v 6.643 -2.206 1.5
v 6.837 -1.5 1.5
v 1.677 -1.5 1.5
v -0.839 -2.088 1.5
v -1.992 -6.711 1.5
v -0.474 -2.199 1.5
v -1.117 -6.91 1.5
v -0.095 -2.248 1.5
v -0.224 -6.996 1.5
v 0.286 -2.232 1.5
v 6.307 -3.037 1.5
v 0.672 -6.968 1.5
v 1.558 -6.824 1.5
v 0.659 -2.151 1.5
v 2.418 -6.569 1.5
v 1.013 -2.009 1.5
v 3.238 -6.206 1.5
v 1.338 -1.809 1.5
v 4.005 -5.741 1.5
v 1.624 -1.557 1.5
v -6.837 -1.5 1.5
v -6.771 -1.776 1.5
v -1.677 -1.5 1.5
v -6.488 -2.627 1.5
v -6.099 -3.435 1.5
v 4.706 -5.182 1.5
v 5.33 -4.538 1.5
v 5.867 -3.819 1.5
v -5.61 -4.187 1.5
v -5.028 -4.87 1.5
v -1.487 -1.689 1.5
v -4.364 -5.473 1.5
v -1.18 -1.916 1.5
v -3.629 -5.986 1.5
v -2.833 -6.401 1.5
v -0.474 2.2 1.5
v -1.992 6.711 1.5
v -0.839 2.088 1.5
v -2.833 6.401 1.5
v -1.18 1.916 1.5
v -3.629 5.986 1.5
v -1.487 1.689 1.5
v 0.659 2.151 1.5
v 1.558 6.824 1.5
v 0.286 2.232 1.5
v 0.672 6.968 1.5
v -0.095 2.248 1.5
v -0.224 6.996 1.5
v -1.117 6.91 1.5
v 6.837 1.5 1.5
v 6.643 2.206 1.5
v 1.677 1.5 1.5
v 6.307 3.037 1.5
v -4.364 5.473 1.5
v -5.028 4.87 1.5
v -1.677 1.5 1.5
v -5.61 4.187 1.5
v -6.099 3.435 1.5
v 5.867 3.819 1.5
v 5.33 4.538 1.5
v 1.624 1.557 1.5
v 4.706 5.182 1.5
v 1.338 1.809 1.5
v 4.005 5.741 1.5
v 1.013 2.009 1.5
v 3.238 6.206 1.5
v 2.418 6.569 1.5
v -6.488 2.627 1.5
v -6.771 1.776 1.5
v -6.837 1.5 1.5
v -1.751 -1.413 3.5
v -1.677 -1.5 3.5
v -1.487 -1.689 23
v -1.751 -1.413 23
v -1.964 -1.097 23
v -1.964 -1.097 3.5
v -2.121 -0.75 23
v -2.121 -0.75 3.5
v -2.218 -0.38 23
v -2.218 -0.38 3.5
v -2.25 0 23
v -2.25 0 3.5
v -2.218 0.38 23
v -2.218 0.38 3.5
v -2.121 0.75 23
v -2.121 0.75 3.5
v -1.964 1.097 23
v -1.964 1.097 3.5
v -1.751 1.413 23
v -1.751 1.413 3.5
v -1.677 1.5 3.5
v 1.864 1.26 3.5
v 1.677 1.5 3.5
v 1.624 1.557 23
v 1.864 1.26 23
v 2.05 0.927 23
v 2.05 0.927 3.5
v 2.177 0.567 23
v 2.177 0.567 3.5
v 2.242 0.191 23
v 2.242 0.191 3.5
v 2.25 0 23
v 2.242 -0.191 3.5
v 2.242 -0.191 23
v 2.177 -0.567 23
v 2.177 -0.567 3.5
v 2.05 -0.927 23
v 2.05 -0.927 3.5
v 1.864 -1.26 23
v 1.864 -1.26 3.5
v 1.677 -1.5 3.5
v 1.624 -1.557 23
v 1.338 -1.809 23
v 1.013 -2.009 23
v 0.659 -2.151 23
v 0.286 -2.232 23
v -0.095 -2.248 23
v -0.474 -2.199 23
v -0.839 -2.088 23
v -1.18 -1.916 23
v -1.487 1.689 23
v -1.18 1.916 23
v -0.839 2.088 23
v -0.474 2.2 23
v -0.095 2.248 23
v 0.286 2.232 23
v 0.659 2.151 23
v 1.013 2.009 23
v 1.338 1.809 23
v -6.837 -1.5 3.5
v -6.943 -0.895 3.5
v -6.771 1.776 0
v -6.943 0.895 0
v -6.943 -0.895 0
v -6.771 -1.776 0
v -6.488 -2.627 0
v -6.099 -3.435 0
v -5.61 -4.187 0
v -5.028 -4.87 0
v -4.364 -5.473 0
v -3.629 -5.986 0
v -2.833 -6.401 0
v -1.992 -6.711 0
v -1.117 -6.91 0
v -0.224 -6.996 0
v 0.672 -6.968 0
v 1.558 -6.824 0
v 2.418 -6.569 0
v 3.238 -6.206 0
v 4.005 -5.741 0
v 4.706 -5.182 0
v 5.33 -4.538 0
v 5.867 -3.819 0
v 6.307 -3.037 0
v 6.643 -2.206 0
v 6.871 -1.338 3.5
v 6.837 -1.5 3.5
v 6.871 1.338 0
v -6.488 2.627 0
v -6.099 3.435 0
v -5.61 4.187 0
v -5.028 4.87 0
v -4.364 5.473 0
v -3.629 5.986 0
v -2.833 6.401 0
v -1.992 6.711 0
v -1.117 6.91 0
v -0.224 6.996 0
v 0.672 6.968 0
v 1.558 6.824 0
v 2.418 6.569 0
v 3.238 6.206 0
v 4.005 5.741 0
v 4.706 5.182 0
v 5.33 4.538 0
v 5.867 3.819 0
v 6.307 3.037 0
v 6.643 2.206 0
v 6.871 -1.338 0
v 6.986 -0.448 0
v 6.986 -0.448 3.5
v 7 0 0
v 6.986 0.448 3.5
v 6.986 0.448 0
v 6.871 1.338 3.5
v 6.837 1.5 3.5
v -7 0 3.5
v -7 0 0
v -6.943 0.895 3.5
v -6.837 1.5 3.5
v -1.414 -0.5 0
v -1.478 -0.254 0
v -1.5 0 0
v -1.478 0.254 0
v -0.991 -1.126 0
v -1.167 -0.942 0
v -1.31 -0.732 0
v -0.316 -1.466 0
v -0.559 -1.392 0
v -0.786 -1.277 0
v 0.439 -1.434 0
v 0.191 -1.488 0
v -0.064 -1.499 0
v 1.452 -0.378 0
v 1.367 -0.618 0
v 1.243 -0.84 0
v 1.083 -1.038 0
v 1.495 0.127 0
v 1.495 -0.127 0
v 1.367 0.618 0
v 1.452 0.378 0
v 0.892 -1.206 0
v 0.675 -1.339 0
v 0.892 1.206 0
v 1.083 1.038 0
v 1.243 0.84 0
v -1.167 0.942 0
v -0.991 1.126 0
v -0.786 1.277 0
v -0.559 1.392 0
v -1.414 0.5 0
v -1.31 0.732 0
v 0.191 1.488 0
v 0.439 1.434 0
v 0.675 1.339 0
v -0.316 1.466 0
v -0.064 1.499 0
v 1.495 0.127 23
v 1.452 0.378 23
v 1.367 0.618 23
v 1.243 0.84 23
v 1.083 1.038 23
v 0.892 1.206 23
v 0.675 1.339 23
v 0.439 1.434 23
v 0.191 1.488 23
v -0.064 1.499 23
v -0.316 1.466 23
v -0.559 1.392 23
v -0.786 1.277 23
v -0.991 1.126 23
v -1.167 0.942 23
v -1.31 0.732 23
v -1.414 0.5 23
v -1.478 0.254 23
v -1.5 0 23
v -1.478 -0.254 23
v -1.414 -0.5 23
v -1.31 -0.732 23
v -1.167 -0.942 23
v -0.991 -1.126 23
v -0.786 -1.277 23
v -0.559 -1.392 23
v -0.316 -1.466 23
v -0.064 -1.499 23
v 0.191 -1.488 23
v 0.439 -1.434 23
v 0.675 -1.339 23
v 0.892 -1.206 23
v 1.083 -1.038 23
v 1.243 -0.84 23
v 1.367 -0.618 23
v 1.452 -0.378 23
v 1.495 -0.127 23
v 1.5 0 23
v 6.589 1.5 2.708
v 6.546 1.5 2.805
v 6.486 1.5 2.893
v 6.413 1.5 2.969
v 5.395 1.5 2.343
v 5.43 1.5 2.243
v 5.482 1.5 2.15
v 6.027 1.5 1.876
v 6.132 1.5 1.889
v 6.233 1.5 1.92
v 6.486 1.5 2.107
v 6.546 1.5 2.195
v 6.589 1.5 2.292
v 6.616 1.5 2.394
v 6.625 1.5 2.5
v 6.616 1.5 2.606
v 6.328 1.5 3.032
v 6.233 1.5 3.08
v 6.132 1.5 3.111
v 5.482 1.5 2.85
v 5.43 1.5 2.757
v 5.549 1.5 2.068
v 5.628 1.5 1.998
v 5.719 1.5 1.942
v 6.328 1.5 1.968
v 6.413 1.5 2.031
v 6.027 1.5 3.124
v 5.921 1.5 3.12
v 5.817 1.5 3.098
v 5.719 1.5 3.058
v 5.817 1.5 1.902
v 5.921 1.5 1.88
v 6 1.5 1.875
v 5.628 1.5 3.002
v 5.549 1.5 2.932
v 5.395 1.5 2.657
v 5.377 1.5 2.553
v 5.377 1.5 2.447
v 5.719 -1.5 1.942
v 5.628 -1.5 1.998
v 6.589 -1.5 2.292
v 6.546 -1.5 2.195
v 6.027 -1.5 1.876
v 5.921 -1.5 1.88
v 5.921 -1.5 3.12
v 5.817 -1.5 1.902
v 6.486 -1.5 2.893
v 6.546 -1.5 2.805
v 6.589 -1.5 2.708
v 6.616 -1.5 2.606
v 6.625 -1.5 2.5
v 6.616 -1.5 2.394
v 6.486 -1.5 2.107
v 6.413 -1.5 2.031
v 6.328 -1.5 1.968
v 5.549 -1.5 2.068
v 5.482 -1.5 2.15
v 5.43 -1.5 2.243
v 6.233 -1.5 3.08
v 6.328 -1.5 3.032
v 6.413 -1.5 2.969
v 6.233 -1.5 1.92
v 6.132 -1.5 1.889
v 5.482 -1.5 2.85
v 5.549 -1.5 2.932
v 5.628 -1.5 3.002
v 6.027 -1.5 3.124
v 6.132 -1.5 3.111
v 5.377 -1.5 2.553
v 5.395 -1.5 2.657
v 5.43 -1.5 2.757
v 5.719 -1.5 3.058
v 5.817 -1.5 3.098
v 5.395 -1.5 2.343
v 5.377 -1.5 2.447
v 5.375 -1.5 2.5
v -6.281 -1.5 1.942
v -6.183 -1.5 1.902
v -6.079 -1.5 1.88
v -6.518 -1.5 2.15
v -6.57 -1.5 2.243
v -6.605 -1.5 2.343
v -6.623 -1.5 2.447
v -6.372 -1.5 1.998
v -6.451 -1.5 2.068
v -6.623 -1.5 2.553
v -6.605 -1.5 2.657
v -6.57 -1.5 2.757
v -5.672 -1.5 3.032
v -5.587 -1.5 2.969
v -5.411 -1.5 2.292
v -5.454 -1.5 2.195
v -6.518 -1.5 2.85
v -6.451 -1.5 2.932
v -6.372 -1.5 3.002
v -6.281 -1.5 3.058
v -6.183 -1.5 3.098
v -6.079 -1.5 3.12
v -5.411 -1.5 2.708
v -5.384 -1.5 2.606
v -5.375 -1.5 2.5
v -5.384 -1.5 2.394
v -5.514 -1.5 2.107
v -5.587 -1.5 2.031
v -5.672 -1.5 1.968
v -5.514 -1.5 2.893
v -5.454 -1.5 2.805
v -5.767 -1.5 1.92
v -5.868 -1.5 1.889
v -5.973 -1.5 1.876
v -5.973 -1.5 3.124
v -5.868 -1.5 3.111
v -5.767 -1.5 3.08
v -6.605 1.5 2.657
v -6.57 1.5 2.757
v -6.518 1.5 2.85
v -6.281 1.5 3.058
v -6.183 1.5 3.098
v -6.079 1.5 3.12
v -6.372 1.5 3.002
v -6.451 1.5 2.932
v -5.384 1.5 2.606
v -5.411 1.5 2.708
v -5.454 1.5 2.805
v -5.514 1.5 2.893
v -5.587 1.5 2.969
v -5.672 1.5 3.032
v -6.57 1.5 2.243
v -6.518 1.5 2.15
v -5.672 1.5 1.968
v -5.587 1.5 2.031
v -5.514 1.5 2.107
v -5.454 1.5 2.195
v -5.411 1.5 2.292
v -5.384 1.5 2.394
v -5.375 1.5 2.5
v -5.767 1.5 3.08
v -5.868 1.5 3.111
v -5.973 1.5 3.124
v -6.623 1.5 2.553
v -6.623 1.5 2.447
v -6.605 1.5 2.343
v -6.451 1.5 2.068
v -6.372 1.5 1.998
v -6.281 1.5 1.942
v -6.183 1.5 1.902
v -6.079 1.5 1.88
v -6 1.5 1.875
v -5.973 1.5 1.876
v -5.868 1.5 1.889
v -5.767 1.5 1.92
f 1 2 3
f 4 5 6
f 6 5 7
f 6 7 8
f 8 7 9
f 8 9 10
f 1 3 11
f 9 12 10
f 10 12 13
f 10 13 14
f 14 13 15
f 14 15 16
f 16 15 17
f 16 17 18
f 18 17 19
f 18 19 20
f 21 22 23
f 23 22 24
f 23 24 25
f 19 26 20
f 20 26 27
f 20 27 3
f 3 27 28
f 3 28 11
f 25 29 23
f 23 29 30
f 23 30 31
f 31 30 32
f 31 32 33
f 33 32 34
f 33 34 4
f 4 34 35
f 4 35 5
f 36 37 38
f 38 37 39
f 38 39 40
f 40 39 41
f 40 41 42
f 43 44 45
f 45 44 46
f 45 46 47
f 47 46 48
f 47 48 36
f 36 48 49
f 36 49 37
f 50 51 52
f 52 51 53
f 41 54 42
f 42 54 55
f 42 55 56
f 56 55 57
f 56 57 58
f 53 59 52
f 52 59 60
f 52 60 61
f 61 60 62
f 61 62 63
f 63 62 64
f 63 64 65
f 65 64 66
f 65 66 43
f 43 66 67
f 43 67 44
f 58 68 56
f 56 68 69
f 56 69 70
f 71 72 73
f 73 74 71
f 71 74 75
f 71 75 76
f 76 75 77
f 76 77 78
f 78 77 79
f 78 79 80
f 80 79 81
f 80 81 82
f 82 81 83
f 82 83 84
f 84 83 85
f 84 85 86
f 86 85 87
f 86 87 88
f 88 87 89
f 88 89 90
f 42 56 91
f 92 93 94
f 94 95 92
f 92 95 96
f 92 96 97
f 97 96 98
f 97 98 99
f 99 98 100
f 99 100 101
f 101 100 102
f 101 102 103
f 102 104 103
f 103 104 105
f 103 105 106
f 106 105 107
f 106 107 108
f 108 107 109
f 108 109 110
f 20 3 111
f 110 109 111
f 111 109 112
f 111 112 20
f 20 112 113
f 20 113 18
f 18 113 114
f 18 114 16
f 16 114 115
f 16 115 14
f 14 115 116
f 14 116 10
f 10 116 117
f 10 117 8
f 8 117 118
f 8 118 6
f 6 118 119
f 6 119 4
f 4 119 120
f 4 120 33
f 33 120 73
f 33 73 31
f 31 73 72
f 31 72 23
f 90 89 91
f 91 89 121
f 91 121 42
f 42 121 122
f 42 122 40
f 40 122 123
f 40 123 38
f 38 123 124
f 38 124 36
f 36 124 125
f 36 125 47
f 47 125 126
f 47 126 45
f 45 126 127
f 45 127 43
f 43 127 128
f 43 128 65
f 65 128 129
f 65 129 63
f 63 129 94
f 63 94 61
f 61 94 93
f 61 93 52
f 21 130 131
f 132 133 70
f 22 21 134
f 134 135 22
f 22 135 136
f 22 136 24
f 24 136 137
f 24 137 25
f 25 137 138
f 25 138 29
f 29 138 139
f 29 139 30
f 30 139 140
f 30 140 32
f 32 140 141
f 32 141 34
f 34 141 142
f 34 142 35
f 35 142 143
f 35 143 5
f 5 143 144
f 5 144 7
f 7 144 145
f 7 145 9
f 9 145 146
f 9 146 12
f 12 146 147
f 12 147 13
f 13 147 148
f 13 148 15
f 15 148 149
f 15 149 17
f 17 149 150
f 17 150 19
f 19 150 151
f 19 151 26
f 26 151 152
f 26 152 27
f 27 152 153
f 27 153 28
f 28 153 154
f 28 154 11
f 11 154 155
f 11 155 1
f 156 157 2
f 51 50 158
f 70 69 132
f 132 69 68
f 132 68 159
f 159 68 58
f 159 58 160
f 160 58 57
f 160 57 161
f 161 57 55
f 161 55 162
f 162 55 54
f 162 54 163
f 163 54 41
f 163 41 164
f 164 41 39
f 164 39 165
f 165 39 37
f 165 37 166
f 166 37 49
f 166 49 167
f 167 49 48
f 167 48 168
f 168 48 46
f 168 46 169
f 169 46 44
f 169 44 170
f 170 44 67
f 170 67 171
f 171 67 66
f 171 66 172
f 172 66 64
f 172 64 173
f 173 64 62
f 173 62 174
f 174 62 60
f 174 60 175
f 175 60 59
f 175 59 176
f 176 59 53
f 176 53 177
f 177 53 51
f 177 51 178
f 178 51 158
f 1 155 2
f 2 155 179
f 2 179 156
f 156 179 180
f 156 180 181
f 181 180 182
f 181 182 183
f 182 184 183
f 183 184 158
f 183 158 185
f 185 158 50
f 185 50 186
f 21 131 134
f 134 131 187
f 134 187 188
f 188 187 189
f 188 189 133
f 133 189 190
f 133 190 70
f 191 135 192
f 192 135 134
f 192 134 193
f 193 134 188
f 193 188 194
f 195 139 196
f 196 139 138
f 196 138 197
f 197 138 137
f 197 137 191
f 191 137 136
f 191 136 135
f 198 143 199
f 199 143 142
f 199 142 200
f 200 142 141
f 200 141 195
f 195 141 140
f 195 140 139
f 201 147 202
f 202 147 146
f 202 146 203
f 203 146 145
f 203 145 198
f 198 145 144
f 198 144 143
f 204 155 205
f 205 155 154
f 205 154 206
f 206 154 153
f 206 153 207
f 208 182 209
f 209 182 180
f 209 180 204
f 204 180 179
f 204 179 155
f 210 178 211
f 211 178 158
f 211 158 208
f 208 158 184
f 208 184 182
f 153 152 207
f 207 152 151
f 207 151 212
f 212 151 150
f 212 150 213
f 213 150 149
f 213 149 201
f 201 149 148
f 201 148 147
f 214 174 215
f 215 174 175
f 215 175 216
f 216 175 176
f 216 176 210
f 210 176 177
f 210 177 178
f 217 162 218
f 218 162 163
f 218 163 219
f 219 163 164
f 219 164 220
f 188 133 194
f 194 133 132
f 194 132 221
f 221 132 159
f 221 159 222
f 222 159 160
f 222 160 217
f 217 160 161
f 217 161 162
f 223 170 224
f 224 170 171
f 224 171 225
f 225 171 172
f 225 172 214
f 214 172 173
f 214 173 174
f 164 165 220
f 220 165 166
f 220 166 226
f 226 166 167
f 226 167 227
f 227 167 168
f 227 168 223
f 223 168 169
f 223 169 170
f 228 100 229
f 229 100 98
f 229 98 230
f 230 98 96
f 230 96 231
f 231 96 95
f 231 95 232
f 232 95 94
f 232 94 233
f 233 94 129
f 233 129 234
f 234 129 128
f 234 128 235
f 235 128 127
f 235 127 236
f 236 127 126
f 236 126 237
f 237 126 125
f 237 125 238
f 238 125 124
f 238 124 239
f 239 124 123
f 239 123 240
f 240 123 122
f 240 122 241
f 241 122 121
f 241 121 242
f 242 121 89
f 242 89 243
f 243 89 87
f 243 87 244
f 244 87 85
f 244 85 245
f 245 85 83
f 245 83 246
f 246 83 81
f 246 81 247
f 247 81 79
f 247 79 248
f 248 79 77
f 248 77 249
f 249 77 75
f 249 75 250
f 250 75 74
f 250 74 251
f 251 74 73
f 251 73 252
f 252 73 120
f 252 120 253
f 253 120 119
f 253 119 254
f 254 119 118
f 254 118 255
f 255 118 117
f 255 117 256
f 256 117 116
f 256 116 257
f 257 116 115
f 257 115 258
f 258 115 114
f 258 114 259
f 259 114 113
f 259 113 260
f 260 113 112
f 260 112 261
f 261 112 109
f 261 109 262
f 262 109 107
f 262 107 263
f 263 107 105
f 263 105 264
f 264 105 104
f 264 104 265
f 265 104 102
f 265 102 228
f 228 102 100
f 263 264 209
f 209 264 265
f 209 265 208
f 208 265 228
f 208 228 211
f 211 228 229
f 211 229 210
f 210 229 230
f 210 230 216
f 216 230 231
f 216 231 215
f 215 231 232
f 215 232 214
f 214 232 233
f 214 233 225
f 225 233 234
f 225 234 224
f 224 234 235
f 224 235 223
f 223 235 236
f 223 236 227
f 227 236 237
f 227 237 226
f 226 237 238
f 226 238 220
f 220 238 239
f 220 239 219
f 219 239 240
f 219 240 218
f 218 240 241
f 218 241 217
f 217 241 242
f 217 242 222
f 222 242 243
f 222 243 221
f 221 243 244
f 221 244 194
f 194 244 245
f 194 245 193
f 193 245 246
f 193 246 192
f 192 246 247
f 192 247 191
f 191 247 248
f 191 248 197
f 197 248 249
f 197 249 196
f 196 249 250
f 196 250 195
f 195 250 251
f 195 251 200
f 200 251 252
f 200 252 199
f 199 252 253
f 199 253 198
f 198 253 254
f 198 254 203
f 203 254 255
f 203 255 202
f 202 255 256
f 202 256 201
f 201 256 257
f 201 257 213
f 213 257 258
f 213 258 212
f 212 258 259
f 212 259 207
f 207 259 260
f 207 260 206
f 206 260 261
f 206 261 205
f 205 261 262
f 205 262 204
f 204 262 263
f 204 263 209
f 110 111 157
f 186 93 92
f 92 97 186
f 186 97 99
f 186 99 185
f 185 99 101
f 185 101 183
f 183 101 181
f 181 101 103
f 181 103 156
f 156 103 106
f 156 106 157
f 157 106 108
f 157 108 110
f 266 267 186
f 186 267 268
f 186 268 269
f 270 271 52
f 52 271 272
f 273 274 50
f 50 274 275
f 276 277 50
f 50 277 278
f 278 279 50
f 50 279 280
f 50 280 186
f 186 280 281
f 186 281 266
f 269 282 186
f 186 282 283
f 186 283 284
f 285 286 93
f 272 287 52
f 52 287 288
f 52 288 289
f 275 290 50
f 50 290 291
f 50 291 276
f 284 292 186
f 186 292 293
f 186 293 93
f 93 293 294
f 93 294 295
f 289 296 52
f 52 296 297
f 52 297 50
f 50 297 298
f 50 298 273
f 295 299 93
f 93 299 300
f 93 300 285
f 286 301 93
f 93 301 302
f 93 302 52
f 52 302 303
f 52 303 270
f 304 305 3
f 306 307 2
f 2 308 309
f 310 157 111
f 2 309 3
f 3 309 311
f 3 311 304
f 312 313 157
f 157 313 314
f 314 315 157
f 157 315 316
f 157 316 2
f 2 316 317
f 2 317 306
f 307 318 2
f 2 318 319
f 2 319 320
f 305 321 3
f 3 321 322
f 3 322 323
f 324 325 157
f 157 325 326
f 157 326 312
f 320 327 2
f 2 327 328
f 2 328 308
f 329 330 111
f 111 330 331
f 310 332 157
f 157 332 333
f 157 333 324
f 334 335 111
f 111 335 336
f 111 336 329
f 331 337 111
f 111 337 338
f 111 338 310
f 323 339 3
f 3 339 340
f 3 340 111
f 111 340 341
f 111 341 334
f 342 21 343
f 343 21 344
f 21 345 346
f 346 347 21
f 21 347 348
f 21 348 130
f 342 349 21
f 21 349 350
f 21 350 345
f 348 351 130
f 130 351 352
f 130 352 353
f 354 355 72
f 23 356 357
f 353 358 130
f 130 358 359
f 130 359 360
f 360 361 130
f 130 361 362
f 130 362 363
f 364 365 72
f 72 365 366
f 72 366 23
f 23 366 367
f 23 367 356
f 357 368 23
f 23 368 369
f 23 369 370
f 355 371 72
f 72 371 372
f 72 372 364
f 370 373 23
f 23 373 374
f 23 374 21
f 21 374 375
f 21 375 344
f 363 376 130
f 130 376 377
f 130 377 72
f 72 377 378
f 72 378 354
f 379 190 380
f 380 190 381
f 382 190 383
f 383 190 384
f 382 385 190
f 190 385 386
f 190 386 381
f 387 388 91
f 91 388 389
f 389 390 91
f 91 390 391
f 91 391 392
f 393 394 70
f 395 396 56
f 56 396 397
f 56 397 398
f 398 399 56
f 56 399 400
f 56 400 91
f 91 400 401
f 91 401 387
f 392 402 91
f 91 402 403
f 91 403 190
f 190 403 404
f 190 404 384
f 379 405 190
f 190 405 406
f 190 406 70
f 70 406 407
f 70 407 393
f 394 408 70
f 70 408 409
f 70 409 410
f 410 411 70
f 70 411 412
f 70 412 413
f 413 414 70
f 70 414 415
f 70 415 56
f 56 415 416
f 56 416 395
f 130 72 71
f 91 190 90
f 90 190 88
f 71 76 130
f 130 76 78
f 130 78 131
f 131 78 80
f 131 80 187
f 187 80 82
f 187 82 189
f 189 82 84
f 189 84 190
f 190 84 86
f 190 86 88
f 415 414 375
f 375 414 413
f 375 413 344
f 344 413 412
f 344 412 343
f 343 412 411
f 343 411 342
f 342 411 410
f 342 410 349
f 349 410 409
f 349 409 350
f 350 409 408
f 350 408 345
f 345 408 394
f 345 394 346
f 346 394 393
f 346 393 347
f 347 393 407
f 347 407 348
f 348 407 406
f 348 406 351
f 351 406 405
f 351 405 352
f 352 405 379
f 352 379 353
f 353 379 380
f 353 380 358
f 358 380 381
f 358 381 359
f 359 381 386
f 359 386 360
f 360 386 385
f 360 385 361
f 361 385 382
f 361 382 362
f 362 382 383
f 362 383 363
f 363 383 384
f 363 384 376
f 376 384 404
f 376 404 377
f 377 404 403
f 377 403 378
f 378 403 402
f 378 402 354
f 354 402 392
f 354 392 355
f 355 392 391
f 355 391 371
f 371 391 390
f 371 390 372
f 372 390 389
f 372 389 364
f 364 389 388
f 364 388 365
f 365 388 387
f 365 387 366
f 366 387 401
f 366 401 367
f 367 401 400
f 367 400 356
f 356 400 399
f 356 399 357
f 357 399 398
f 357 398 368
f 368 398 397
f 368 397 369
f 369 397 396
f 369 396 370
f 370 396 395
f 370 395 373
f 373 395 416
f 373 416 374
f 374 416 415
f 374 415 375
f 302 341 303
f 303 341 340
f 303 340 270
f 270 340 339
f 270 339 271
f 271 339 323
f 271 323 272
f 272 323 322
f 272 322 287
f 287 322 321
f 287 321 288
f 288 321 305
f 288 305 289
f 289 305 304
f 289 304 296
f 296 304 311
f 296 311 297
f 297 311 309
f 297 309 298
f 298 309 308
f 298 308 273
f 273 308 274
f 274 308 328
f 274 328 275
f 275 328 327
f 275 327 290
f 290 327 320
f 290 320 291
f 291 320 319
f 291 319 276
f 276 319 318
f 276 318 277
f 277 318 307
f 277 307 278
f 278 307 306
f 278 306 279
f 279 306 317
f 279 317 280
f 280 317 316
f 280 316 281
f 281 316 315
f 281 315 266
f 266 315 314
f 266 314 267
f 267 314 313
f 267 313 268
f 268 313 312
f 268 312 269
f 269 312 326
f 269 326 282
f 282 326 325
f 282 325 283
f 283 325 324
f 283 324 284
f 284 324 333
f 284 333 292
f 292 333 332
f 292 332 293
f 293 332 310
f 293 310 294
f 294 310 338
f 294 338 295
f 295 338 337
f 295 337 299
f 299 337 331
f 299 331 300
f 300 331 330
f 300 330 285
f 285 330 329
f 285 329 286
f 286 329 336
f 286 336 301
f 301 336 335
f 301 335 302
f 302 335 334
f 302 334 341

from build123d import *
from build123d.topology import SkipClean

# Parameters (mm, degrees)
SKETCH1_R           = 7
BOSS_EXTRUDE1_DEPTH = 1.5
SKETCH2_R           = 2.25
BOSS_EXTRUDE2_DEPTH = 21.5
CUT_EXTRUDE1_REACH  = 27.04
SKETCH4_R           = 1.5
BOSS_EXTRUDE5_DEPTH = 2
CUT_EXTRUDE5_REACH  = 27.5
SKETCH16_R          = 0.625
CUT_EXTRUDE6_REACH  = 25.67
SKETCH17_R          = 1.5


with BuildPart() as part:
    # Sketch1 → Boss-Extrude1 (new body)
    with BuildSketch(Plane.XY):
        Circle(SKETCH1_R)
    extrude(amount=BOSS_EXTRUDE1_DEPTH)

    # Sketch2 → Boss-Extrude2 (add)
    with BuildSketch(Plane.XY.offset(1.5)):
        Circle(SKETCH2_R)
    extrude(amount=BOSS_EXTRUDE2_DEPTH)

    # Sketch4 → Cut-Extrude1 (cut, up to next)
    with BuildSketch(Plane(origin=(0, 0, 0), x_dir=(-1, 0, 0), z_dir=(0, 0, -1)), mode=Mode.PRIVATE) as cut_extrude1_sk1:
        Circle(SKETCH4_R)
    cut_extrude1_tool1 = extrude(cut_extrude1_sk1.sketch, amount=-CUT_EXTRUDE1_REACH, mode=Mode.PRIVATE) & part.part
    add(cut_extrude1_tool1.solids().sort_by_distance((0, 0, 0))[0], mode=Mode.SUBTRACT)

    # Sketch15 → Boss-Extrude5 (add)
    with SkipClean():  # the faces are left unmerged after this step: merging them gives an invalid solid
        with BuildSketch(Plane.XY.offset(1.5)):
            with BuildLine():
                Line((6.837397, -1.5), (-6.837397, -1.5))
                ThreePointArc((-6.837397, -1.5), (-7, 0), (-6.837397, 1.5))
                Line((-6.837397, 1.5), (6.837397, 1.5))
                ThreePointArc((6.837397, 1.5), (7, 0), (6.837397, -1.5))
            make_face()
        extrude(amount=BOSS_EXTRUDE5_DEPTH)

    # Sketch16 → Cut-Extrude5 (cut, up to next)
    with BuildSketch(Plane.XZ.offset(1.5), mode=Mode.PRIVATE) as cut_extrude5_sk1:
        with Locations((-6, 2.5)):
            Circle(SKETCH16_R)
    cut_extrude5_tool1 = extrude(cut_extrude5_sk1.sketch, amount=-CUT_EXTRUDE5_REACH, mode=Mode.PRIVATE) & part.part
    # Sketch16 → Cut-Extrude5 (cut, up to next)
    with BuildSketch(Plane.XZ.offset(1.5), mode=Mode.PRIVATE) as cut_extrude5_sk2:
        with Locations(Location((6, 2.5, 0), (0, 0, 270))):
            Circle(SKETCH16_R)
    cut_extrude5_tool2 = extrude(cut_extrude5_sk2.sketch, amount=-CUT_EXTRUDE5_REACH, mode=Mode.PRIVATE) & part.part
    add(cut_extrude5_tool1.solids().sort_by_distance((-6, -1.5, 2.5))[0], mode=Mode.SUBTRACT)
    add(cut_extrude5_tool2.solids().sort_by_distance((6, -1.5, 2.5))[0], mode=Mode.SUBTRACT)

    # Sketch17 → Cut-Extrude6 (cut, up to next)
    with BuildSketch(Plane(origin=(0, 0, 1.5), x_dir=(-1, 0, 0), z_dir=(0, 0, -1)), mode=Mode.PRIVATE) as cut_extrude6_sk1:
        Circle(SKETCH17_R)
    cut_extrude6_tool1 = extrude(cut_extrude6_sk1.sketch, amount=-CUT_EXTRUDE6_REACH, mode=Mode.PRIVATE) & part.part
    add(cut_extrude6_tool1.solids().sort_by_distance((0, 0, 1.5))[0], mode=Mode.SUBTRACT)


solid = part.part
